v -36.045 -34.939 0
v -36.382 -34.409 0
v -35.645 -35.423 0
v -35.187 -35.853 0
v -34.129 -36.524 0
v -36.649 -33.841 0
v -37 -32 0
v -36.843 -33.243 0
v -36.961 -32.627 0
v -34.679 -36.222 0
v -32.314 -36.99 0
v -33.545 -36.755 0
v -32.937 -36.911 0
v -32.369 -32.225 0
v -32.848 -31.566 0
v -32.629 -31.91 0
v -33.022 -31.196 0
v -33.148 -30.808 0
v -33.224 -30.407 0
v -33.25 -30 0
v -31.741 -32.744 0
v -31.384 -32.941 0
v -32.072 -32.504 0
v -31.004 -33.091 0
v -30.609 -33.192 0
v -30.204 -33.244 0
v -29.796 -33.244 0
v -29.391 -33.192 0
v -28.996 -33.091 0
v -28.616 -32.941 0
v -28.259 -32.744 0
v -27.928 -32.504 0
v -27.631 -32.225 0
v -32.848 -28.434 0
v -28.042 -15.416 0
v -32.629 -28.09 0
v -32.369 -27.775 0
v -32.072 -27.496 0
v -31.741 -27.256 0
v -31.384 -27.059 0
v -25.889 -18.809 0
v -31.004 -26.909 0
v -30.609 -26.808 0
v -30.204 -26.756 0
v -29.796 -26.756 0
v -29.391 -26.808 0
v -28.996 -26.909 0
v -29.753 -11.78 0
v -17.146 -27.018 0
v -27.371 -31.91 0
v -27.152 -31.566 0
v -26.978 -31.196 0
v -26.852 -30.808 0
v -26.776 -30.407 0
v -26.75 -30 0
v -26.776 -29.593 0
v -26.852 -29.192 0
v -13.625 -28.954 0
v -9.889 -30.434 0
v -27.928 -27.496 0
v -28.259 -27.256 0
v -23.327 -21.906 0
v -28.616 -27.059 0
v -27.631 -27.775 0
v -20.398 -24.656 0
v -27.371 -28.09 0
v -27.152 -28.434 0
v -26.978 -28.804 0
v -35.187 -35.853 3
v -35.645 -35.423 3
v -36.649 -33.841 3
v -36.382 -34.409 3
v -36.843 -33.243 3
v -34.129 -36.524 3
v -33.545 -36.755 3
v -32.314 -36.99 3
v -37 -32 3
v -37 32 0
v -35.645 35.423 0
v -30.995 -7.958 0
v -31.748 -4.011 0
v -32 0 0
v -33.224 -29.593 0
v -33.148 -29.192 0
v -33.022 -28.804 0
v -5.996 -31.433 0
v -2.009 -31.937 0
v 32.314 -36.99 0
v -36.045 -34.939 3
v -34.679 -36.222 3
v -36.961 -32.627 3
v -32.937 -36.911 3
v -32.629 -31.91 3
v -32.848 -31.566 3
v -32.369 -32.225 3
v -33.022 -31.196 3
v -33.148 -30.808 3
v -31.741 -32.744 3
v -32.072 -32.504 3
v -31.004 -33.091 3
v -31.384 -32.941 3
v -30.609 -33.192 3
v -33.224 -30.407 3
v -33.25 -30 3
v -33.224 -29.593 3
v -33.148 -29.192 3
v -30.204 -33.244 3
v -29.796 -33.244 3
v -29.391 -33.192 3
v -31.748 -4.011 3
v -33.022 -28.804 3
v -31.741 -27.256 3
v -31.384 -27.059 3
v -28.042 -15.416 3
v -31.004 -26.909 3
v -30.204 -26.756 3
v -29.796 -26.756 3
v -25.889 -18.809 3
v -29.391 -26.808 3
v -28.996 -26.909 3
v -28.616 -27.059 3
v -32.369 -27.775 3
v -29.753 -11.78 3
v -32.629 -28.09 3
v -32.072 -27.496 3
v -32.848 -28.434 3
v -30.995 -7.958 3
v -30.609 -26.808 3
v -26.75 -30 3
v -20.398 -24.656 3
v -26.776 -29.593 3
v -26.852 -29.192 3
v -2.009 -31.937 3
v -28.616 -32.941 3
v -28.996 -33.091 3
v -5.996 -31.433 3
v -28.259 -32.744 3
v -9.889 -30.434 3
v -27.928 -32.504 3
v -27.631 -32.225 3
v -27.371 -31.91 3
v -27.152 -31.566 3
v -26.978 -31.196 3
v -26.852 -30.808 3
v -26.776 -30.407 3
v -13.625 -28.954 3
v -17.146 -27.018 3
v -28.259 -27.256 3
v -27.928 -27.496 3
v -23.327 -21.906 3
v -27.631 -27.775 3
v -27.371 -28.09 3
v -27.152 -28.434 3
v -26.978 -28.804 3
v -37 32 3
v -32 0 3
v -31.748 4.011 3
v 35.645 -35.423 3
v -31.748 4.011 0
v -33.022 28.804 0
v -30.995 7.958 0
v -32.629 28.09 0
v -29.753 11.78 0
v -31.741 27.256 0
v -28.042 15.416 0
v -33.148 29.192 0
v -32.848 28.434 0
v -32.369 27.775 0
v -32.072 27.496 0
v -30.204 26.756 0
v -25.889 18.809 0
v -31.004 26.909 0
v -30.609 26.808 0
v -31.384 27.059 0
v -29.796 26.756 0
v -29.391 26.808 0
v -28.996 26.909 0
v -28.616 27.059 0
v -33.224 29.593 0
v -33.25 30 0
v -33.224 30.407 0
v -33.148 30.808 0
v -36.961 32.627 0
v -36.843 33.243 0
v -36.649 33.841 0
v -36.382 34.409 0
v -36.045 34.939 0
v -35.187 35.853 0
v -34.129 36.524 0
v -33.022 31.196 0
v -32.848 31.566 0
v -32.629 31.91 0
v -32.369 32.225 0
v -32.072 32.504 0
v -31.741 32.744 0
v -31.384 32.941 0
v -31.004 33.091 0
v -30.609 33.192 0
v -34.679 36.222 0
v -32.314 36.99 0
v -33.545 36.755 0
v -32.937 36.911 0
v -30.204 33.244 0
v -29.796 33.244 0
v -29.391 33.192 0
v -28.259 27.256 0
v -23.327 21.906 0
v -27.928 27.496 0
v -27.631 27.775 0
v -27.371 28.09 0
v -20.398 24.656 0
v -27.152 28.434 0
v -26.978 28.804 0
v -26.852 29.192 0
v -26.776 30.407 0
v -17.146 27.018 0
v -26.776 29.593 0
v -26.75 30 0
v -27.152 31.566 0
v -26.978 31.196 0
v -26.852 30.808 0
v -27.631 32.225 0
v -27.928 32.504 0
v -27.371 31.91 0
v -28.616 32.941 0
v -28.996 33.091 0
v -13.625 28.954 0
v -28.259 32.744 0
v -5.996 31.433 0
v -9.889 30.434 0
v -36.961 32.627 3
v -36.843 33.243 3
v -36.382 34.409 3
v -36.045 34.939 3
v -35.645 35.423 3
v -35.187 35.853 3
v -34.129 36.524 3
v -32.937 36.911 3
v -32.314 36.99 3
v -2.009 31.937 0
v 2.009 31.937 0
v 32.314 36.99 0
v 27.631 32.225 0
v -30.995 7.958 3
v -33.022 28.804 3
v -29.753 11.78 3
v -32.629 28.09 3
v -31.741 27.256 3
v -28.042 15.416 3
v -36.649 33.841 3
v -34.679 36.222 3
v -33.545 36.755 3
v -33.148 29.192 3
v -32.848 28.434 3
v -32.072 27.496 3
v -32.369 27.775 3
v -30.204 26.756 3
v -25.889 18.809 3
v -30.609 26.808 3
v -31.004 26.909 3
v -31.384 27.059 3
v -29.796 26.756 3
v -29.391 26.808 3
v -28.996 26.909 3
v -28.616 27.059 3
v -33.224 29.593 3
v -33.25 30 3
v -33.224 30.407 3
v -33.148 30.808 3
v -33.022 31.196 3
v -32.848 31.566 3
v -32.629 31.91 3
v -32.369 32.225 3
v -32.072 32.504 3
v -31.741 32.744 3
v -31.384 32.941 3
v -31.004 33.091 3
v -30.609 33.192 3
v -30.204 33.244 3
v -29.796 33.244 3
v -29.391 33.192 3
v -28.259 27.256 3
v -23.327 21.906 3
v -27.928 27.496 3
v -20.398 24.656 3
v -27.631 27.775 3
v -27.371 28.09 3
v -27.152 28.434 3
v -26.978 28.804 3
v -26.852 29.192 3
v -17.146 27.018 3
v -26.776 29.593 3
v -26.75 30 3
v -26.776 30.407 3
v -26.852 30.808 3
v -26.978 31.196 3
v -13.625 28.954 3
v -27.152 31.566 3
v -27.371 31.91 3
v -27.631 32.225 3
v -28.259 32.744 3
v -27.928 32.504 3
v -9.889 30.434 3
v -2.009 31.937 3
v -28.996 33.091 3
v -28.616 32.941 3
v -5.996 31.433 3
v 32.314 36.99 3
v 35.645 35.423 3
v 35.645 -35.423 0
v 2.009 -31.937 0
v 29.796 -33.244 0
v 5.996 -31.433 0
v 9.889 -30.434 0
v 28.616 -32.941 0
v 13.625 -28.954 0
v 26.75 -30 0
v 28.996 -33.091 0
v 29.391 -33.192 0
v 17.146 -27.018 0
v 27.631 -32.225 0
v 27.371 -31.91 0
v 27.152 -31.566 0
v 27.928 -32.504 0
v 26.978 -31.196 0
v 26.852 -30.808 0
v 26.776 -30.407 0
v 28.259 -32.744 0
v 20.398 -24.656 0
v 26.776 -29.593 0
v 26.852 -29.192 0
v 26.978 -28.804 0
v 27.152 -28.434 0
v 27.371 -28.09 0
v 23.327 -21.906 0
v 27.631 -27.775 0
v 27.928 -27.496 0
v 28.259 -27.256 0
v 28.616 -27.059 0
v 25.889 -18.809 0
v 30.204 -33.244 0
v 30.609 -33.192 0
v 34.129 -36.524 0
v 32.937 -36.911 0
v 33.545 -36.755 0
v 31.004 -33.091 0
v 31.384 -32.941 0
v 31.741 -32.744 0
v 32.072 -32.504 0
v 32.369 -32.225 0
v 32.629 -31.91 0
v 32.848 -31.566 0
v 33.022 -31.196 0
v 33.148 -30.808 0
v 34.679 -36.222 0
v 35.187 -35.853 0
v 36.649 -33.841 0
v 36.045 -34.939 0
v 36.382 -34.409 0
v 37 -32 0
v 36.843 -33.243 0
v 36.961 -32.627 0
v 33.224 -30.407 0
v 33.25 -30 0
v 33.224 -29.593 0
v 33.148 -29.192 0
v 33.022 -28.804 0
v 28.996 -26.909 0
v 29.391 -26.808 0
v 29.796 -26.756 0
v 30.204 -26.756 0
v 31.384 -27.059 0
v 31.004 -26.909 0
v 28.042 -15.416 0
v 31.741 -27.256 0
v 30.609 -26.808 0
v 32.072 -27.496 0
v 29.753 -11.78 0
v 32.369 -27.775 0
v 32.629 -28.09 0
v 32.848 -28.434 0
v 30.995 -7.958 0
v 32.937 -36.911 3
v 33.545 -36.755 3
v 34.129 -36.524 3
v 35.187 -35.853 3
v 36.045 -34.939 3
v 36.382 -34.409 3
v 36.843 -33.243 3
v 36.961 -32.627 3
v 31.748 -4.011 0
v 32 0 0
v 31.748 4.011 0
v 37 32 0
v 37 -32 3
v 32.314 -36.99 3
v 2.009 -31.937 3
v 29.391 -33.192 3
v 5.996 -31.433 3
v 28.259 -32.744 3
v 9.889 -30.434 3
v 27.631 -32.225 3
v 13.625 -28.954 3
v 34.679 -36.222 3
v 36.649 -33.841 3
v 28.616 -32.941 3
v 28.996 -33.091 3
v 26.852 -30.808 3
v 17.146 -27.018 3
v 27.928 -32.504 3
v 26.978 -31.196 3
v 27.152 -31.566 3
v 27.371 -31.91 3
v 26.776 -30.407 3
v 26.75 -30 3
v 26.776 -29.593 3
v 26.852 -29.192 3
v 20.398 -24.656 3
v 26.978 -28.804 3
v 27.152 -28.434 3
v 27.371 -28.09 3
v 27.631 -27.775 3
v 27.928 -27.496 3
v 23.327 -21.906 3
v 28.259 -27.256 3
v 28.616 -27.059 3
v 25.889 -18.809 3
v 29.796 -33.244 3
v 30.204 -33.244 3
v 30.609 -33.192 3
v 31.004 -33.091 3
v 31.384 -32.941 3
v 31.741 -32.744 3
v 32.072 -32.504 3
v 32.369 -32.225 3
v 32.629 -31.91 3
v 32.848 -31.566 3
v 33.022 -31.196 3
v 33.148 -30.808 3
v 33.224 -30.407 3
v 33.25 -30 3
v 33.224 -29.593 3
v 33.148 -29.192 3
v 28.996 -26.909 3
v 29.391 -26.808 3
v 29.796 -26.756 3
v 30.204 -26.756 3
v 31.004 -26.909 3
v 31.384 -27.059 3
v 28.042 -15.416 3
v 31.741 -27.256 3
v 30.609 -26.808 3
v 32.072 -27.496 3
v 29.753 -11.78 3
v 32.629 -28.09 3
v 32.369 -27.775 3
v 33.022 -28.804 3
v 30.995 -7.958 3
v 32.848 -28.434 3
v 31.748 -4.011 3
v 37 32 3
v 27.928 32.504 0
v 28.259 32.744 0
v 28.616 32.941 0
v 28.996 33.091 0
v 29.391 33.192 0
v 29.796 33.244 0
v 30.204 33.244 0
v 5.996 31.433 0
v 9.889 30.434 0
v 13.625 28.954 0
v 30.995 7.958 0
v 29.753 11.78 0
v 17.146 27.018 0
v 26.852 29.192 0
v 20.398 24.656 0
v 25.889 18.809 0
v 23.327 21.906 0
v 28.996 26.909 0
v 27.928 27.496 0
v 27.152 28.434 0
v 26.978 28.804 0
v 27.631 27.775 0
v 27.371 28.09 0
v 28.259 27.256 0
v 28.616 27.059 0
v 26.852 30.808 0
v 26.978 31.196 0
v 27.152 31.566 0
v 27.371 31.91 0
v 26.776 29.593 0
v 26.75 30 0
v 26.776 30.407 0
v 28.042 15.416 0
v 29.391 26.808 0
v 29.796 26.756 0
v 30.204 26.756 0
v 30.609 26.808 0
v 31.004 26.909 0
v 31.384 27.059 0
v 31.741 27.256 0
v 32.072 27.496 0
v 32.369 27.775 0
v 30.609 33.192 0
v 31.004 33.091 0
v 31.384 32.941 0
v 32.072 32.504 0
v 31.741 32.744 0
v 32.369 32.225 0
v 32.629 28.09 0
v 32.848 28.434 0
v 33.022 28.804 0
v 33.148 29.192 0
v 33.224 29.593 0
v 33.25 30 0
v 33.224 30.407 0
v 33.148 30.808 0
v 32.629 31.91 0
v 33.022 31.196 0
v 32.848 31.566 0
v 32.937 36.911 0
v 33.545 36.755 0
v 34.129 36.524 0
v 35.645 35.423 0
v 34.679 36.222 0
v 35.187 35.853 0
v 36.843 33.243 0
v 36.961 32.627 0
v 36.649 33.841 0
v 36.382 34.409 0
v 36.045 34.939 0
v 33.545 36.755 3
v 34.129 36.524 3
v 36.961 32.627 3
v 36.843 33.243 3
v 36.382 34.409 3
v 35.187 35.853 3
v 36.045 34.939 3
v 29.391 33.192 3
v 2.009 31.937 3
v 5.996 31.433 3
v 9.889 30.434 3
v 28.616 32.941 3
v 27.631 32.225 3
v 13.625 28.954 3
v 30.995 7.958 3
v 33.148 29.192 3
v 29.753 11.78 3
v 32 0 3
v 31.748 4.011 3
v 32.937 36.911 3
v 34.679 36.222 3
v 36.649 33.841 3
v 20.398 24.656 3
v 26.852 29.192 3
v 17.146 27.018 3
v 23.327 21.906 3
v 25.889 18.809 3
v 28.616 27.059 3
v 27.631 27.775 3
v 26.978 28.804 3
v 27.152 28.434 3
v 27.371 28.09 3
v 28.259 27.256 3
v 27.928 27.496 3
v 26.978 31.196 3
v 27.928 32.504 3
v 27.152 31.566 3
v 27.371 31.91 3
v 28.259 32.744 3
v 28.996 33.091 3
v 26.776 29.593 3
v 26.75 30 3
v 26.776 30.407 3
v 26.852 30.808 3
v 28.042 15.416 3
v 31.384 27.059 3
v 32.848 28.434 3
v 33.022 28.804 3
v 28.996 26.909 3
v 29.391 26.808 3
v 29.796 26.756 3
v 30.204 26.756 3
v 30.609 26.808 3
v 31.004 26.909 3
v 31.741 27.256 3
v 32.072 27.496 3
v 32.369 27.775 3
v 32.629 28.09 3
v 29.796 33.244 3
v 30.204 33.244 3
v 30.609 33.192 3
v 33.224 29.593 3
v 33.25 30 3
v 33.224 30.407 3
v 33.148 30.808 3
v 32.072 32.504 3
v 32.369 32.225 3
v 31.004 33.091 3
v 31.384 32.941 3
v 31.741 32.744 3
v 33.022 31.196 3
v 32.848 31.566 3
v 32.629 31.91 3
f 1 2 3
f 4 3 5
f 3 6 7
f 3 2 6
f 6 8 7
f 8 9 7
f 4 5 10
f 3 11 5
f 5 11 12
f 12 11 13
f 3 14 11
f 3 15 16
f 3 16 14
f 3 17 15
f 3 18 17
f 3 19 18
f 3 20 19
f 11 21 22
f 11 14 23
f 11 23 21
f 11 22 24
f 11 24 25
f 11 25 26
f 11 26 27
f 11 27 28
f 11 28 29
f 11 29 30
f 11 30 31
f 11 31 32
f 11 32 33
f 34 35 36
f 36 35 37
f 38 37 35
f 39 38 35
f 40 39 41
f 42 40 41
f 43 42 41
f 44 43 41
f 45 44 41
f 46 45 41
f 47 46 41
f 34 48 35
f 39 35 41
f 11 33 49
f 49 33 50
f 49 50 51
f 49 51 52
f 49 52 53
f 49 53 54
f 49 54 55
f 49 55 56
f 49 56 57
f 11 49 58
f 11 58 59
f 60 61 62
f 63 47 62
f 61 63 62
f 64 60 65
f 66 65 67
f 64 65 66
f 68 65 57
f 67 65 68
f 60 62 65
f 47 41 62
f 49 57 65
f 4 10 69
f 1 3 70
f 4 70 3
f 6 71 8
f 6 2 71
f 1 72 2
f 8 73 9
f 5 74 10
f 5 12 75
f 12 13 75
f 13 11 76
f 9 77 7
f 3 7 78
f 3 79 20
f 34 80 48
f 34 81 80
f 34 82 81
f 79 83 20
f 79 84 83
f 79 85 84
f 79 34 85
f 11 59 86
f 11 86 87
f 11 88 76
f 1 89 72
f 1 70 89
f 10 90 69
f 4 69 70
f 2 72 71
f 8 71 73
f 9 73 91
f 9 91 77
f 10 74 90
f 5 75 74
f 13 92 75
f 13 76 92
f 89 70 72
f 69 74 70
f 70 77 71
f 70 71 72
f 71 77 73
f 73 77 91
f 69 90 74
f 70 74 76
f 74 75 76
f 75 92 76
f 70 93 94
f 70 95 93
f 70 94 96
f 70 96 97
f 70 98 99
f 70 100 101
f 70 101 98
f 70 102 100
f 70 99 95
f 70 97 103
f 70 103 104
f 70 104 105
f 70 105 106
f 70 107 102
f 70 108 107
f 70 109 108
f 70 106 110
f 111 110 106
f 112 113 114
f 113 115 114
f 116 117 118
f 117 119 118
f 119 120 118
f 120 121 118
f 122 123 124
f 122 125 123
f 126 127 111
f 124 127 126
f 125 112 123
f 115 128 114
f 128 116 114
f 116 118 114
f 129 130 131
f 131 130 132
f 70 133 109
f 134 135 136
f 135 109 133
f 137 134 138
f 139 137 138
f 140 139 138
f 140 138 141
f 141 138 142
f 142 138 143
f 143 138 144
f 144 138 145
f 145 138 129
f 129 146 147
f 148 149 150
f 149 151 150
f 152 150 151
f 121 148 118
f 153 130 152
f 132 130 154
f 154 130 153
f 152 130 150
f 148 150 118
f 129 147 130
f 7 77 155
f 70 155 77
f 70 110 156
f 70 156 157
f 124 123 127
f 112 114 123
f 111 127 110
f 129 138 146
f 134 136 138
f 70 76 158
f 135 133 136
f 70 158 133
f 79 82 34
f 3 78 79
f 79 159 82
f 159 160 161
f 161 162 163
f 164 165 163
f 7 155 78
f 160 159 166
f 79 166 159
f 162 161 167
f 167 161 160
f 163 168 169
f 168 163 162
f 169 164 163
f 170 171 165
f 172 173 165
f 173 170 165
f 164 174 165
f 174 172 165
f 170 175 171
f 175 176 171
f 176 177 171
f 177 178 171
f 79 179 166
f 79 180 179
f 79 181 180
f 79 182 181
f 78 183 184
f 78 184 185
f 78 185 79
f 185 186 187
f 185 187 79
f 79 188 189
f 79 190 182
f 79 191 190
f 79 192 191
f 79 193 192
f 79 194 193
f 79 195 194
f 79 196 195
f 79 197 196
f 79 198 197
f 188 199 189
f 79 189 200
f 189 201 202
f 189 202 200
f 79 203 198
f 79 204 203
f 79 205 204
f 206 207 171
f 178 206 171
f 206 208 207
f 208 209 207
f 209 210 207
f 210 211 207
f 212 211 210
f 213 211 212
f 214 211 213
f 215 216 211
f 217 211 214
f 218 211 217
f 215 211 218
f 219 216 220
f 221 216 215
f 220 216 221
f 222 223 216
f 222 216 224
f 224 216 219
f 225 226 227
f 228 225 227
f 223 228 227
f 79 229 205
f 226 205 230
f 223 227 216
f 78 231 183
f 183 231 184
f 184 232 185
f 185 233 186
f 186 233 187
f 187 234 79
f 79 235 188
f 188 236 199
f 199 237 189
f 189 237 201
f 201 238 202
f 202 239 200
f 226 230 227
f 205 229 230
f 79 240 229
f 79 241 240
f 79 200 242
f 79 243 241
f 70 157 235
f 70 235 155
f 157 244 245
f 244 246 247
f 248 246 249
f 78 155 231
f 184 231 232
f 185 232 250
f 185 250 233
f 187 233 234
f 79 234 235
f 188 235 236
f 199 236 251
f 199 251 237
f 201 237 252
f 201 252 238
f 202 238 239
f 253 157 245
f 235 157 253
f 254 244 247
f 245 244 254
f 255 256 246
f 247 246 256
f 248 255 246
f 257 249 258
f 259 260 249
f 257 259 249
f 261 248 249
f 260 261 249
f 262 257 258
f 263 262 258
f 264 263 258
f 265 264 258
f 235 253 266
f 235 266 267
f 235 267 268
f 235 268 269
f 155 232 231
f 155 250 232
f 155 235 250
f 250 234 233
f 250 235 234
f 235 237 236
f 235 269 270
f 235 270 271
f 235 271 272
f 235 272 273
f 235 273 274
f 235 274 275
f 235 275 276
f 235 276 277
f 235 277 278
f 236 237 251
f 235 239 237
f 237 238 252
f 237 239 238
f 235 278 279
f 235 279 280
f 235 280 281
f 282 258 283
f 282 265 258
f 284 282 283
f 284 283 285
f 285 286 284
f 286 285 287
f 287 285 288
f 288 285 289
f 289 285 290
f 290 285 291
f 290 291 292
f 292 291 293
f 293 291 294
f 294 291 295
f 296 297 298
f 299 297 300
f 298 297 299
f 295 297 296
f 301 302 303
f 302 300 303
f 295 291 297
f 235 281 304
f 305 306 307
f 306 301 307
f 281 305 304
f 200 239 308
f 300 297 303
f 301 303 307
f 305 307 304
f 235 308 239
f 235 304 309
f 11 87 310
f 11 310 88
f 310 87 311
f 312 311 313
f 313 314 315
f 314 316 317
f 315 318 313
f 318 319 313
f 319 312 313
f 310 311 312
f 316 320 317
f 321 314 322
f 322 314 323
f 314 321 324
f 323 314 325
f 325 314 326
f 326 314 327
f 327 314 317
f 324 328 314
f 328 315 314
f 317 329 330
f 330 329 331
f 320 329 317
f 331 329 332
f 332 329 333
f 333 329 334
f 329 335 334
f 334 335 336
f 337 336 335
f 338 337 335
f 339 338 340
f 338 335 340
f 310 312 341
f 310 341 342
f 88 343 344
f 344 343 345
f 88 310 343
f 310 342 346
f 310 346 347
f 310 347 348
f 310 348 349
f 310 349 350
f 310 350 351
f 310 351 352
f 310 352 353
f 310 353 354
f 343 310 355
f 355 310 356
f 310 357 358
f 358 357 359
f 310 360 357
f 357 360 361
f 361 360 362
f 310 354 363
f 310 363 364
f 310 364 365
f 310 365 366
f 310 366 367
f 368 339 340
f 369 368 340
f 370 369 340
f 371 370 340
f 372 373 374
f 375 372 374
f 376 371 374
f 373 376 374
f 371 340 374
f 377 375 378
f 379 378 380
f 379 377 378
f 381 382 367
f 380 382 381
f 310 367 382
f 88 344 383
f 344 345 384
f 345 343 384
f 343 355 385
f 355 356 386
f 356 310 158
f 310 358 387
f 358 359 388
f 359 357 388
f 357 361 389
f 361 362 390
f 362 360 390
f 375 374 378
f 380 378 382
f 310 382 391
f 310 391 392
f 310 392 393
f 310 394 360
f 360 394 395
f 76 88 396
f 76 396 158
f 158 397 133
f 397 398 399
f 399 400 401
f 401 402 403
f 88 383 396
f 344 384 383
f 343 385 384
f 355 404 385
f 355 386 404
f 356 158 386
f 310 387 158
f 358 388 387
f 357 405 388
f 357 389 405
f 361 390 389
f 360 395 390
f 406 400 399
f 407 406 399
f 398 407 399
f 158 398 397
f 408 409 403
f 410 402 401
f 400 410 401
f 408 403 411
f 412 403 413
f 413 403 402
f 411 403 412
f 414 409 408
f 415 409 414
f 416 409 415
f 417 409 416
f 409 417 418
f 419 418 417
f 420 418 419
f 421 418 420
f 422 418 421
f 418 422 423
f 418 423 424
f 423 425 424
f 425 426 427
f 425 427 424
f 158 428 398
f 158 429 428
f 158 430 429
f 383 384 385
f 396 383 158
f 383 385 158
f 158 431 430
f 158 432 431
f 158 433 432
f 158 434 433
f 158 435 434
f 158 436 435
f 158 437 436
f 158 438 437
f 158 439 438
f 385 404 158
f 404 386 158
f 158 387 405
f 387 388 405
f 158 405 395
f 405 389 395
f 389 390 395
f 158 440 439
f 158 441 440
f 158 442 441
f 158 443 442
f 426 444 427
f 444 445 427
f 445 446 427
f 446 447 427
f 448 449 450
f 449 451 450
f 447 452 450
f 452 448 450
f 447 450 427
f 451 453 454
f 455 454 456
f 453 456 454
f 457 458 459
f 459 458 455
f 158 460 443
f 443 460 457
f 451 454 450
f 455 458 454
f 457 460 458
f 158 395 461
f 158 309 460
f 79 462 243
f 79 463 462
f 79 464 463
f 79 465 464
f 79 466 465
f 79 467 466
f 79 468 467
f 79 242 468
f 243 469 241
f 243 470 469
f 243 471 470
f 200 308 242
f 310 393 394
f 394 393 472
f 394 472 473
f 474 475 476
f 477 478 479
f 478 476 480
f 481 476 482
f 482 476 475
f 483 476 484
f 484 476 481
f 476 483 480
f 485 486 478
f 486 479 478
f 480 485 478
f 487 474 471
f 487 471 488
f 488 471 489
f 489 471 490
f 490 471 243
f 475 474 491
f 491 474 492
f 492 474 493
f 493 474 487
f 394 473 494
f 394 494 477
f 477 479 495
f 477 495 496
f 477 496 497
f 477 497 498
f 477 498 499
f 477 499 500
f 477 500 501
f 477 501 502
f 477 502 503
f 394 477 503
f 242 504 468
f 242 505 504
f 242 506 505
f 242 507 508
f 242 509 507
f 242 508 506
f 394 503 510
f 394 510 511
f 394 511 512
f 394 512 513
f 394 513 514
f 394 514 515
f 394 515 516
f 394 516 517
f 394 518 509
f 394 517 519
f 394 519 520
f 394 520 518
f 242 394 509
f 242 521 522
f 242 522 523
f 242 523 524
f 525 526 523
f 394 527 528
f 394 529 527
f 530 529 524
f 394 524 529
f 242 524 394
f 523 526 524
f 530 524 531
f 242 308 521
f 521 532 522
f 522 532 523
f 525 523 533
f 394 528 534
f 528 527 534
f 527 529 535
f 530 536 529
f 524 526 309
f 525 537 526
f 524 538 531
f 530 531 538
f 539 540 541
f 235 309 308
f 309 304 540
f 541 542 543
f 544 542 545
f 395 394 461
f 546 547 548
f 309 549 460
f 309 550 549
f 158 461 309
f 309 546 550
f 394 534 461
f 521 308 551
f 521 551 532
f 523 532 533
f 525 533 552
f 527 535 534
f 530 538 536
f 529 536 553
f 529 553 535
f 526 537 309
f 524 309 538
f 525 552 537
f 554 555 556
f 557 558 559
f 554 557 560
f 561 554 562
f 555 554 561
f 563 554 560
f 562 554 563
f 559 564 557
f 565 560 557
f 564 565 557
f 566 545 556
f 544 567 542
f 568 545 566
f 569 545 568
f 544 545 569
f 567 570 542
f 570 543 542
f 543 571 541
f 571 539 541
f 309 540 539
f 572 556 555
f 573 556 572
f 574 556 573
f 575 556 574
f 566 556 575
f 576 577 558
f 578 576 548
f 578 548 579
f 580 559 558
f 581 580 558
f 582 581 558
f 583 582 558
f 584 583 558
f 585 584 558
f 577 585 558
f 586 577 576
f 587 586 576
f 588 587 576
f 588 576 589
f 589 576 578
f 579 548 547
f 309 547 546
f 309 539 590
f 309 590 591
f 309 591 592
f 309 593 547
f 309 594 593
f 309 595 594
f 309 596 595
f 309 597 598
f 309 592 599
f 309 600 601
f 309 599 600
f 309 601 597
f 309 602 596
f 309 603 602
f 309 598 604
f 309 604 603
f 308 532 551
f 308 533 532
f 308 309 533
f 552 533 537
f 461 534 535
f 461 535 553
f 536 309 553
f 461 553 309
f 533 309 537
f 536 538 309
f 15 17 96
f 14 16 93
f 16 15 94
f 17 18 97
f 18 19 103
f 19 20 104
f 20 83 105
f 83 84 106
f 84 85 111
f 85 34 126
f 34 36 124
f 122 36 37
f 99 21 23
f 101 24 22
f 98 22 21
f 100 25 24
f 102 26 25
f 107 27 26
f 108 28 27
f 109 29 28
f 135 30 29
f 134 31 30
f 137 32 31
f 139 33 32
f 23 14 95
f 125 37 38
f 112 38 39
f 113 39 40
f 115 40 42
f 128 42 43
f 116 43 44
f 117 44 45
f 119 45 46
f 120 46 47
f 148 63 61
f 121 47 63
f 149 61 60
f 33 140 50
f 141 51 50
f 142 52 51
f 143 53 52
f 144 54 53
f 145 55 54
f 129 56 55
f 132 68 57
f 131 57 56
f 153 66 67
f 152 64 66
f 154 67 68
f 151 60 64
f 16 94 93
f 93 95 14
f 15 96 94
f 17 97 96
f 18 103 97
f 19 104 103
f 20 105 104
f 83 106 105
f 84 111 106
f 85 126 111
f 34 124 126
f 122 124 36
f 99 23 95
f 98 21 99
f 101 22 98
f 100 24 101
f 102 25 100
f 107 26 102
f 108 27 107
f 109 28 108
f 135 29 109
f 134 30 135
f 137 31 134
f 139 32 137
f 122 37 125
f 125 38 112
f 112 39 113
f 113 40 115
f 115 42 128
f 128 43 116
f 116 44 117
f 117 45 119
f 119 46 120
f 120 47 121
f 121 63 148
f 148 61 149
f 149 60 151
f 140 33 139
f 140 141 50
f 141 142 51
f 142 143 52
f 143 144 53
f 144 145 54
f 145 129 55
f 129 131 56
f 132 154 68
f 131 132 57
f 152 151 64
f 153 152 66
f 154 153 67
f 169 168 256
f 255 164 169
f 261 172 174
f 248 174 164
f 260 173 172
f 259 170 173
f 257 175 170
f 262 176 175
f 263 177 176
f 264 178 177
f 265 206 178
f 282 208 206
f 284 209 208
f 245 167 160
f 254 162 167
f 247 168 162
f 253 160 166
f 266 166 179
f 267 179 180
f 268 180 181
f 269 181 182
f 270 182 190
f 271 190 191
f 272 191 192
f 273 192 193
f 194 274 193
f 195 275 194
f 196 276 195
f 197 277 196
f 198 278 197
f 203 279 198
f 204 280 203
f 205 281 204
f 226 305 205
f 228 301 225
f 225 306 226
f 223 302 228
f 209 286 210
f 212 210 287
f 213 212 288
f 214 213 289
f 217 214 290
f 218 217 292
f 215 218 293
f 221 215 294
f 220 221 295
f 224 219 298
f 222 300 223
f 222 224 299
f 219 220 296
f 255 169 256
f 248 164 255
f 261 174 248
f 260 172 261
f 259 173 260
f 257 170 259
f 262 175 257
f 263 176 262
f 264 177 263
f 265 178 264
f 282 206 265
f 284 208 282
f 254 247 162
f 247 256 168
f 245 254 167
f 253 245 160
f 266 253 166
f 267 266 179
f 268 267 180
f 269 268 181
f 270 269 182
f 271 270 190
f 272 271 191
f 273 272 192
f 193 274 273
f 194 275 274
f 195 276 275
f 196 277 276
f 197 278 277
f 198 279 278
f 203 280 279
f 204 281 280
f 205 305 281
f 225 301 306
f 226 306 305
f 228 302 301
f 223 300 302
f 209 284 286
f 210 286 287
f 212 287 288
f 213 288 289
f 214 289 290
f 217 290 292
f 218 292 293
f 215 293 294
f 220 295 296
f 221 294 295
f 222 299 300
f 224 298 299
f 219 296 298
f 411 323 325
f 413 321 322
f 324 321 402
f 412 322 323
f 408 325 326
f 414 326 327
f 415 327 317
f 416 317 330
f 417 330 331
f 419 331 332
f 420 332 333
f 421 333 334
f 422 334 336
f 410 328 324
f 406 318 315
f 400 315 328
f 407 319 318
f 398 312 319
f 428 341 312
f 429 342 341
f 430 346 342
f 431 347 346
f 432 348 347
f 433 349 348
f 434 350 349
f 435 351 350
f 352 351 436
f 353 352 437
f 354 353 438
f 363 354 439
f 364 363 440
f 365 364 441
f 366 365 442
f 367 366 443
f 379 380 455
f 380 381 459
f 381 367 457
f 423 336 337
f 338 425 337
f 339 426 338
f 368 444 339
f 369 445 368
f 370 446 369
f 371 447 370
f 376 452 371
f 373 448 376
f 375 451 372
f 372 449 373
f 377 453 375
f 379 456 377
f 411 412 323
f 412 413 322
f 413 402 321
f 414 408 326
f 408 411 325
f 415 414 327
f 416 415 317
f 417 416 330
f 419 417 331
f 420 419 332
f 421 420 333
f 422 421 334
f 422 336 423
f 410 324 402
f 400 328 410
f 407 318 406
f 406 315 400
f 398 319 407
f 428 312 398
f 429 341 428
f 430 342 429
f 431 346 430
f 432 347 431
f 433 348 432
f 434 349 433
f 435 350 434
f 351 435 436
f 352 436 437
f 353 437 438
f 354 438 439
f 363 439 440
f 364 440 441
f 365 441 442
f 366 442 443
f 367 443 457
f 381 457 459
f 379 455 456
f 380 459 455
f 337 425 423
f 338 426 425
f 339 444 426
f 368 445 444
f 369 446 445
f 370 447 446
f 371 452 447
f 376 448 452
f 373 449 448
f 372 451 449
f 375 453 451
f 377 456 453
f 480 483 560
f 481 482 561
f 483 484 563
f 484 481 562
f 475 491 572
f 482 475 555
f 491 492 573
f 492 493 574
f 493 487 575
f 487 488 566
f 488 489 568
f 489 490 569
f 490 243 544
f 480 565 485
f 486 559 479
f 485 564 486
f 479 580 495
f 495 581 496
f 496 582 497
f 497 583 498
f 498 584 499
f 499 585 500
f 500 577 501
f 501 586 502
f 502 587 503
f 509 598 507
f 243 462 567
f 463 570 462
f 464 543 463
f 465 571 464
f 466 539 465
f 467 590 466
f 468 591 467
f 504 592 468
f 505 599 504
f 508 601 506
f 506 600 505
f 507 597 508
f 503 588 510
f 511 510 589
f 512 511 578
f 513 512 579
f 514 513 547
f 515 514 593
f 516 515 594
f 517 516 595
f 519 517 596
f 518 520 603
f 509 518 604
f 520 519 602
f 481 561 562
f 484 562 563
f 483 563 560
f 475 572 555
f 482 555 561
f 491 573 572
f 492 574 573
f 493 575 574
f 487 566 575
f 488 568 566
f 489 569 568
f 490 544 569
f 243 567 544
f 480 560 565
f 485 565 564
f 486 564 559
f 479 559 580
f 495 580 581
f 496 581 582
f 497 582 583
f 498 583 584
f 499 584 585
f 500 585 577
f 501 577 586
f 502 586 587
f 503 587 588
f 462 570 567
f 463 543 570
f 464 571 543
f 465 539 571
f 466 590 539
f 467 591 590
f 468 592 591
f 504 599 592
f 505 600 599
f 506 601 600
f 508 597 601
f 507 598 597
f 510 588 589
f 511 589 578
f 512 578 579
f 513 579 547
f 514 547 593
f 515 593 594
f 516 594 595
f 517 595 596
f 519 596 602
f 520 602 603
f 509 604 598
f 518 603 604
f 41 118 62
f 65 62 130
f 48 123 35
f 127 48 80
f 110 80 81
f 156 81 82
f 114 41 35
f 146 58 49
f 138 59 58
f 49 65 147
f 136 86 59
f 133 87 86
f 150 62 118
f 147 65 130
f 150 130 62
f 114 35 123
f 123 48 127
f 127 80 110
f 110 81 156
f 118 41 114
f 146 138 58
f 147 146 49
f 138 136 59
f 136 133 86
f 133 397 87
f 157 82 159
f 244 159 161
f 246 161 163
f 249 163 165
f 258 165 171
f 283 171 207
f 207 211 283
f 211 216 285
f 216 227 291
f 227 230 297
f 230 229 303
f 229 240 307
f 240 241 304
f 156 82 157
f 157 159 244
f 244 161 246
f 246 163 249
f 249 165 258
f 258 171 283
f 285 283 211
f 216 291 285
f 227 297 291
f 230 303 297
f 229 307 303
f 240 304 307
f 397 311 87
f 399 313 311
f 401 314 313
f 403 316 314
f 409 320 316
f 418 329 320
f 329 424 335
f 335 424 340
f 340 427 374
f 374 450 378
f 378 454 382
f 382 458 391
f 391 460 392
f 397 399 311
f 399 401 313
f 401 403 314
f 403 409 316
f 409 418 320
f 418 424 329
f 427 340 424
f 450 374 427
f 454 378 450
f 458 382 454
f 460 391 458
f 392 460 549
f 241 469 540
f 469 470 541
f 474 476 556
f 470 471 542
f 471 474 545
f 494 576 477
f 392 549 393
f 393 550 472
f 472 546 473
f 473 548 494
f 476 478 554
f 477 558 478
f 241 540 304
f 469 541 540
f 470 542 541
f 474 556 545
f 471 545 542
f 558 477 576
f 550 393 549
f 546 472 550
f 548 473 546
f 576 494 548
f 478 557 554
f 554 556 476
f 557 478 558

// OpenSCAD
$fn = 50;

difference() {
	union() {
		hull() {
			translate(v = [-32.0, 32.0, 0]) {
				cylinder(h = 3, r = 5);
			}
			translate(v = [32.0, 32.0, 0]) {
				cylinder(h = 3, r = 5);
			}
			translate(v = [-32.0, -32.0, 0]) {
				cylinder(h = 3, r = 5);
			}
			translate(v = [32.0, -32.0, 0]) {
				cylinder(h = 3, r = 5);
			}
		}
	}
	union() {
		translate(v = [-30.0, -30.0, -100.0]) {
			cylinder(h = 200, r = 3.25);
		}
		translate(v = [-30.0, 30.0, -100.0]) {
			cylinder(h = 200, r = 3.25);
		}
		translate(v = [30.0, -30.0, -100.0]) {
			cylinder(h = 200, r = 3.25);
		}
		translate(v = [30.0, 30.0, -100.0]) {
			cylinder(h = 200, r = 3.25);
		}
		translate(v = [-30.0, -30.0, -100.0]) {
			cylinder(h = 200, r = 1.8);
		}
		translate(v = [-30.0, 30.0, -100.0]) {
			cylinder(h = 200, r = 1.8);
		}
		translate(v = [30.0, -30.0, -100.0]) {
			cylinder(h = 200, r = 1.8);
		}
		translate(v = [30.0, 30.0, -100.0]) {
			cylinder(h = 200, r = 1.8);
		}
		cylinder(h = 3, r = 32.0);
	}
}
